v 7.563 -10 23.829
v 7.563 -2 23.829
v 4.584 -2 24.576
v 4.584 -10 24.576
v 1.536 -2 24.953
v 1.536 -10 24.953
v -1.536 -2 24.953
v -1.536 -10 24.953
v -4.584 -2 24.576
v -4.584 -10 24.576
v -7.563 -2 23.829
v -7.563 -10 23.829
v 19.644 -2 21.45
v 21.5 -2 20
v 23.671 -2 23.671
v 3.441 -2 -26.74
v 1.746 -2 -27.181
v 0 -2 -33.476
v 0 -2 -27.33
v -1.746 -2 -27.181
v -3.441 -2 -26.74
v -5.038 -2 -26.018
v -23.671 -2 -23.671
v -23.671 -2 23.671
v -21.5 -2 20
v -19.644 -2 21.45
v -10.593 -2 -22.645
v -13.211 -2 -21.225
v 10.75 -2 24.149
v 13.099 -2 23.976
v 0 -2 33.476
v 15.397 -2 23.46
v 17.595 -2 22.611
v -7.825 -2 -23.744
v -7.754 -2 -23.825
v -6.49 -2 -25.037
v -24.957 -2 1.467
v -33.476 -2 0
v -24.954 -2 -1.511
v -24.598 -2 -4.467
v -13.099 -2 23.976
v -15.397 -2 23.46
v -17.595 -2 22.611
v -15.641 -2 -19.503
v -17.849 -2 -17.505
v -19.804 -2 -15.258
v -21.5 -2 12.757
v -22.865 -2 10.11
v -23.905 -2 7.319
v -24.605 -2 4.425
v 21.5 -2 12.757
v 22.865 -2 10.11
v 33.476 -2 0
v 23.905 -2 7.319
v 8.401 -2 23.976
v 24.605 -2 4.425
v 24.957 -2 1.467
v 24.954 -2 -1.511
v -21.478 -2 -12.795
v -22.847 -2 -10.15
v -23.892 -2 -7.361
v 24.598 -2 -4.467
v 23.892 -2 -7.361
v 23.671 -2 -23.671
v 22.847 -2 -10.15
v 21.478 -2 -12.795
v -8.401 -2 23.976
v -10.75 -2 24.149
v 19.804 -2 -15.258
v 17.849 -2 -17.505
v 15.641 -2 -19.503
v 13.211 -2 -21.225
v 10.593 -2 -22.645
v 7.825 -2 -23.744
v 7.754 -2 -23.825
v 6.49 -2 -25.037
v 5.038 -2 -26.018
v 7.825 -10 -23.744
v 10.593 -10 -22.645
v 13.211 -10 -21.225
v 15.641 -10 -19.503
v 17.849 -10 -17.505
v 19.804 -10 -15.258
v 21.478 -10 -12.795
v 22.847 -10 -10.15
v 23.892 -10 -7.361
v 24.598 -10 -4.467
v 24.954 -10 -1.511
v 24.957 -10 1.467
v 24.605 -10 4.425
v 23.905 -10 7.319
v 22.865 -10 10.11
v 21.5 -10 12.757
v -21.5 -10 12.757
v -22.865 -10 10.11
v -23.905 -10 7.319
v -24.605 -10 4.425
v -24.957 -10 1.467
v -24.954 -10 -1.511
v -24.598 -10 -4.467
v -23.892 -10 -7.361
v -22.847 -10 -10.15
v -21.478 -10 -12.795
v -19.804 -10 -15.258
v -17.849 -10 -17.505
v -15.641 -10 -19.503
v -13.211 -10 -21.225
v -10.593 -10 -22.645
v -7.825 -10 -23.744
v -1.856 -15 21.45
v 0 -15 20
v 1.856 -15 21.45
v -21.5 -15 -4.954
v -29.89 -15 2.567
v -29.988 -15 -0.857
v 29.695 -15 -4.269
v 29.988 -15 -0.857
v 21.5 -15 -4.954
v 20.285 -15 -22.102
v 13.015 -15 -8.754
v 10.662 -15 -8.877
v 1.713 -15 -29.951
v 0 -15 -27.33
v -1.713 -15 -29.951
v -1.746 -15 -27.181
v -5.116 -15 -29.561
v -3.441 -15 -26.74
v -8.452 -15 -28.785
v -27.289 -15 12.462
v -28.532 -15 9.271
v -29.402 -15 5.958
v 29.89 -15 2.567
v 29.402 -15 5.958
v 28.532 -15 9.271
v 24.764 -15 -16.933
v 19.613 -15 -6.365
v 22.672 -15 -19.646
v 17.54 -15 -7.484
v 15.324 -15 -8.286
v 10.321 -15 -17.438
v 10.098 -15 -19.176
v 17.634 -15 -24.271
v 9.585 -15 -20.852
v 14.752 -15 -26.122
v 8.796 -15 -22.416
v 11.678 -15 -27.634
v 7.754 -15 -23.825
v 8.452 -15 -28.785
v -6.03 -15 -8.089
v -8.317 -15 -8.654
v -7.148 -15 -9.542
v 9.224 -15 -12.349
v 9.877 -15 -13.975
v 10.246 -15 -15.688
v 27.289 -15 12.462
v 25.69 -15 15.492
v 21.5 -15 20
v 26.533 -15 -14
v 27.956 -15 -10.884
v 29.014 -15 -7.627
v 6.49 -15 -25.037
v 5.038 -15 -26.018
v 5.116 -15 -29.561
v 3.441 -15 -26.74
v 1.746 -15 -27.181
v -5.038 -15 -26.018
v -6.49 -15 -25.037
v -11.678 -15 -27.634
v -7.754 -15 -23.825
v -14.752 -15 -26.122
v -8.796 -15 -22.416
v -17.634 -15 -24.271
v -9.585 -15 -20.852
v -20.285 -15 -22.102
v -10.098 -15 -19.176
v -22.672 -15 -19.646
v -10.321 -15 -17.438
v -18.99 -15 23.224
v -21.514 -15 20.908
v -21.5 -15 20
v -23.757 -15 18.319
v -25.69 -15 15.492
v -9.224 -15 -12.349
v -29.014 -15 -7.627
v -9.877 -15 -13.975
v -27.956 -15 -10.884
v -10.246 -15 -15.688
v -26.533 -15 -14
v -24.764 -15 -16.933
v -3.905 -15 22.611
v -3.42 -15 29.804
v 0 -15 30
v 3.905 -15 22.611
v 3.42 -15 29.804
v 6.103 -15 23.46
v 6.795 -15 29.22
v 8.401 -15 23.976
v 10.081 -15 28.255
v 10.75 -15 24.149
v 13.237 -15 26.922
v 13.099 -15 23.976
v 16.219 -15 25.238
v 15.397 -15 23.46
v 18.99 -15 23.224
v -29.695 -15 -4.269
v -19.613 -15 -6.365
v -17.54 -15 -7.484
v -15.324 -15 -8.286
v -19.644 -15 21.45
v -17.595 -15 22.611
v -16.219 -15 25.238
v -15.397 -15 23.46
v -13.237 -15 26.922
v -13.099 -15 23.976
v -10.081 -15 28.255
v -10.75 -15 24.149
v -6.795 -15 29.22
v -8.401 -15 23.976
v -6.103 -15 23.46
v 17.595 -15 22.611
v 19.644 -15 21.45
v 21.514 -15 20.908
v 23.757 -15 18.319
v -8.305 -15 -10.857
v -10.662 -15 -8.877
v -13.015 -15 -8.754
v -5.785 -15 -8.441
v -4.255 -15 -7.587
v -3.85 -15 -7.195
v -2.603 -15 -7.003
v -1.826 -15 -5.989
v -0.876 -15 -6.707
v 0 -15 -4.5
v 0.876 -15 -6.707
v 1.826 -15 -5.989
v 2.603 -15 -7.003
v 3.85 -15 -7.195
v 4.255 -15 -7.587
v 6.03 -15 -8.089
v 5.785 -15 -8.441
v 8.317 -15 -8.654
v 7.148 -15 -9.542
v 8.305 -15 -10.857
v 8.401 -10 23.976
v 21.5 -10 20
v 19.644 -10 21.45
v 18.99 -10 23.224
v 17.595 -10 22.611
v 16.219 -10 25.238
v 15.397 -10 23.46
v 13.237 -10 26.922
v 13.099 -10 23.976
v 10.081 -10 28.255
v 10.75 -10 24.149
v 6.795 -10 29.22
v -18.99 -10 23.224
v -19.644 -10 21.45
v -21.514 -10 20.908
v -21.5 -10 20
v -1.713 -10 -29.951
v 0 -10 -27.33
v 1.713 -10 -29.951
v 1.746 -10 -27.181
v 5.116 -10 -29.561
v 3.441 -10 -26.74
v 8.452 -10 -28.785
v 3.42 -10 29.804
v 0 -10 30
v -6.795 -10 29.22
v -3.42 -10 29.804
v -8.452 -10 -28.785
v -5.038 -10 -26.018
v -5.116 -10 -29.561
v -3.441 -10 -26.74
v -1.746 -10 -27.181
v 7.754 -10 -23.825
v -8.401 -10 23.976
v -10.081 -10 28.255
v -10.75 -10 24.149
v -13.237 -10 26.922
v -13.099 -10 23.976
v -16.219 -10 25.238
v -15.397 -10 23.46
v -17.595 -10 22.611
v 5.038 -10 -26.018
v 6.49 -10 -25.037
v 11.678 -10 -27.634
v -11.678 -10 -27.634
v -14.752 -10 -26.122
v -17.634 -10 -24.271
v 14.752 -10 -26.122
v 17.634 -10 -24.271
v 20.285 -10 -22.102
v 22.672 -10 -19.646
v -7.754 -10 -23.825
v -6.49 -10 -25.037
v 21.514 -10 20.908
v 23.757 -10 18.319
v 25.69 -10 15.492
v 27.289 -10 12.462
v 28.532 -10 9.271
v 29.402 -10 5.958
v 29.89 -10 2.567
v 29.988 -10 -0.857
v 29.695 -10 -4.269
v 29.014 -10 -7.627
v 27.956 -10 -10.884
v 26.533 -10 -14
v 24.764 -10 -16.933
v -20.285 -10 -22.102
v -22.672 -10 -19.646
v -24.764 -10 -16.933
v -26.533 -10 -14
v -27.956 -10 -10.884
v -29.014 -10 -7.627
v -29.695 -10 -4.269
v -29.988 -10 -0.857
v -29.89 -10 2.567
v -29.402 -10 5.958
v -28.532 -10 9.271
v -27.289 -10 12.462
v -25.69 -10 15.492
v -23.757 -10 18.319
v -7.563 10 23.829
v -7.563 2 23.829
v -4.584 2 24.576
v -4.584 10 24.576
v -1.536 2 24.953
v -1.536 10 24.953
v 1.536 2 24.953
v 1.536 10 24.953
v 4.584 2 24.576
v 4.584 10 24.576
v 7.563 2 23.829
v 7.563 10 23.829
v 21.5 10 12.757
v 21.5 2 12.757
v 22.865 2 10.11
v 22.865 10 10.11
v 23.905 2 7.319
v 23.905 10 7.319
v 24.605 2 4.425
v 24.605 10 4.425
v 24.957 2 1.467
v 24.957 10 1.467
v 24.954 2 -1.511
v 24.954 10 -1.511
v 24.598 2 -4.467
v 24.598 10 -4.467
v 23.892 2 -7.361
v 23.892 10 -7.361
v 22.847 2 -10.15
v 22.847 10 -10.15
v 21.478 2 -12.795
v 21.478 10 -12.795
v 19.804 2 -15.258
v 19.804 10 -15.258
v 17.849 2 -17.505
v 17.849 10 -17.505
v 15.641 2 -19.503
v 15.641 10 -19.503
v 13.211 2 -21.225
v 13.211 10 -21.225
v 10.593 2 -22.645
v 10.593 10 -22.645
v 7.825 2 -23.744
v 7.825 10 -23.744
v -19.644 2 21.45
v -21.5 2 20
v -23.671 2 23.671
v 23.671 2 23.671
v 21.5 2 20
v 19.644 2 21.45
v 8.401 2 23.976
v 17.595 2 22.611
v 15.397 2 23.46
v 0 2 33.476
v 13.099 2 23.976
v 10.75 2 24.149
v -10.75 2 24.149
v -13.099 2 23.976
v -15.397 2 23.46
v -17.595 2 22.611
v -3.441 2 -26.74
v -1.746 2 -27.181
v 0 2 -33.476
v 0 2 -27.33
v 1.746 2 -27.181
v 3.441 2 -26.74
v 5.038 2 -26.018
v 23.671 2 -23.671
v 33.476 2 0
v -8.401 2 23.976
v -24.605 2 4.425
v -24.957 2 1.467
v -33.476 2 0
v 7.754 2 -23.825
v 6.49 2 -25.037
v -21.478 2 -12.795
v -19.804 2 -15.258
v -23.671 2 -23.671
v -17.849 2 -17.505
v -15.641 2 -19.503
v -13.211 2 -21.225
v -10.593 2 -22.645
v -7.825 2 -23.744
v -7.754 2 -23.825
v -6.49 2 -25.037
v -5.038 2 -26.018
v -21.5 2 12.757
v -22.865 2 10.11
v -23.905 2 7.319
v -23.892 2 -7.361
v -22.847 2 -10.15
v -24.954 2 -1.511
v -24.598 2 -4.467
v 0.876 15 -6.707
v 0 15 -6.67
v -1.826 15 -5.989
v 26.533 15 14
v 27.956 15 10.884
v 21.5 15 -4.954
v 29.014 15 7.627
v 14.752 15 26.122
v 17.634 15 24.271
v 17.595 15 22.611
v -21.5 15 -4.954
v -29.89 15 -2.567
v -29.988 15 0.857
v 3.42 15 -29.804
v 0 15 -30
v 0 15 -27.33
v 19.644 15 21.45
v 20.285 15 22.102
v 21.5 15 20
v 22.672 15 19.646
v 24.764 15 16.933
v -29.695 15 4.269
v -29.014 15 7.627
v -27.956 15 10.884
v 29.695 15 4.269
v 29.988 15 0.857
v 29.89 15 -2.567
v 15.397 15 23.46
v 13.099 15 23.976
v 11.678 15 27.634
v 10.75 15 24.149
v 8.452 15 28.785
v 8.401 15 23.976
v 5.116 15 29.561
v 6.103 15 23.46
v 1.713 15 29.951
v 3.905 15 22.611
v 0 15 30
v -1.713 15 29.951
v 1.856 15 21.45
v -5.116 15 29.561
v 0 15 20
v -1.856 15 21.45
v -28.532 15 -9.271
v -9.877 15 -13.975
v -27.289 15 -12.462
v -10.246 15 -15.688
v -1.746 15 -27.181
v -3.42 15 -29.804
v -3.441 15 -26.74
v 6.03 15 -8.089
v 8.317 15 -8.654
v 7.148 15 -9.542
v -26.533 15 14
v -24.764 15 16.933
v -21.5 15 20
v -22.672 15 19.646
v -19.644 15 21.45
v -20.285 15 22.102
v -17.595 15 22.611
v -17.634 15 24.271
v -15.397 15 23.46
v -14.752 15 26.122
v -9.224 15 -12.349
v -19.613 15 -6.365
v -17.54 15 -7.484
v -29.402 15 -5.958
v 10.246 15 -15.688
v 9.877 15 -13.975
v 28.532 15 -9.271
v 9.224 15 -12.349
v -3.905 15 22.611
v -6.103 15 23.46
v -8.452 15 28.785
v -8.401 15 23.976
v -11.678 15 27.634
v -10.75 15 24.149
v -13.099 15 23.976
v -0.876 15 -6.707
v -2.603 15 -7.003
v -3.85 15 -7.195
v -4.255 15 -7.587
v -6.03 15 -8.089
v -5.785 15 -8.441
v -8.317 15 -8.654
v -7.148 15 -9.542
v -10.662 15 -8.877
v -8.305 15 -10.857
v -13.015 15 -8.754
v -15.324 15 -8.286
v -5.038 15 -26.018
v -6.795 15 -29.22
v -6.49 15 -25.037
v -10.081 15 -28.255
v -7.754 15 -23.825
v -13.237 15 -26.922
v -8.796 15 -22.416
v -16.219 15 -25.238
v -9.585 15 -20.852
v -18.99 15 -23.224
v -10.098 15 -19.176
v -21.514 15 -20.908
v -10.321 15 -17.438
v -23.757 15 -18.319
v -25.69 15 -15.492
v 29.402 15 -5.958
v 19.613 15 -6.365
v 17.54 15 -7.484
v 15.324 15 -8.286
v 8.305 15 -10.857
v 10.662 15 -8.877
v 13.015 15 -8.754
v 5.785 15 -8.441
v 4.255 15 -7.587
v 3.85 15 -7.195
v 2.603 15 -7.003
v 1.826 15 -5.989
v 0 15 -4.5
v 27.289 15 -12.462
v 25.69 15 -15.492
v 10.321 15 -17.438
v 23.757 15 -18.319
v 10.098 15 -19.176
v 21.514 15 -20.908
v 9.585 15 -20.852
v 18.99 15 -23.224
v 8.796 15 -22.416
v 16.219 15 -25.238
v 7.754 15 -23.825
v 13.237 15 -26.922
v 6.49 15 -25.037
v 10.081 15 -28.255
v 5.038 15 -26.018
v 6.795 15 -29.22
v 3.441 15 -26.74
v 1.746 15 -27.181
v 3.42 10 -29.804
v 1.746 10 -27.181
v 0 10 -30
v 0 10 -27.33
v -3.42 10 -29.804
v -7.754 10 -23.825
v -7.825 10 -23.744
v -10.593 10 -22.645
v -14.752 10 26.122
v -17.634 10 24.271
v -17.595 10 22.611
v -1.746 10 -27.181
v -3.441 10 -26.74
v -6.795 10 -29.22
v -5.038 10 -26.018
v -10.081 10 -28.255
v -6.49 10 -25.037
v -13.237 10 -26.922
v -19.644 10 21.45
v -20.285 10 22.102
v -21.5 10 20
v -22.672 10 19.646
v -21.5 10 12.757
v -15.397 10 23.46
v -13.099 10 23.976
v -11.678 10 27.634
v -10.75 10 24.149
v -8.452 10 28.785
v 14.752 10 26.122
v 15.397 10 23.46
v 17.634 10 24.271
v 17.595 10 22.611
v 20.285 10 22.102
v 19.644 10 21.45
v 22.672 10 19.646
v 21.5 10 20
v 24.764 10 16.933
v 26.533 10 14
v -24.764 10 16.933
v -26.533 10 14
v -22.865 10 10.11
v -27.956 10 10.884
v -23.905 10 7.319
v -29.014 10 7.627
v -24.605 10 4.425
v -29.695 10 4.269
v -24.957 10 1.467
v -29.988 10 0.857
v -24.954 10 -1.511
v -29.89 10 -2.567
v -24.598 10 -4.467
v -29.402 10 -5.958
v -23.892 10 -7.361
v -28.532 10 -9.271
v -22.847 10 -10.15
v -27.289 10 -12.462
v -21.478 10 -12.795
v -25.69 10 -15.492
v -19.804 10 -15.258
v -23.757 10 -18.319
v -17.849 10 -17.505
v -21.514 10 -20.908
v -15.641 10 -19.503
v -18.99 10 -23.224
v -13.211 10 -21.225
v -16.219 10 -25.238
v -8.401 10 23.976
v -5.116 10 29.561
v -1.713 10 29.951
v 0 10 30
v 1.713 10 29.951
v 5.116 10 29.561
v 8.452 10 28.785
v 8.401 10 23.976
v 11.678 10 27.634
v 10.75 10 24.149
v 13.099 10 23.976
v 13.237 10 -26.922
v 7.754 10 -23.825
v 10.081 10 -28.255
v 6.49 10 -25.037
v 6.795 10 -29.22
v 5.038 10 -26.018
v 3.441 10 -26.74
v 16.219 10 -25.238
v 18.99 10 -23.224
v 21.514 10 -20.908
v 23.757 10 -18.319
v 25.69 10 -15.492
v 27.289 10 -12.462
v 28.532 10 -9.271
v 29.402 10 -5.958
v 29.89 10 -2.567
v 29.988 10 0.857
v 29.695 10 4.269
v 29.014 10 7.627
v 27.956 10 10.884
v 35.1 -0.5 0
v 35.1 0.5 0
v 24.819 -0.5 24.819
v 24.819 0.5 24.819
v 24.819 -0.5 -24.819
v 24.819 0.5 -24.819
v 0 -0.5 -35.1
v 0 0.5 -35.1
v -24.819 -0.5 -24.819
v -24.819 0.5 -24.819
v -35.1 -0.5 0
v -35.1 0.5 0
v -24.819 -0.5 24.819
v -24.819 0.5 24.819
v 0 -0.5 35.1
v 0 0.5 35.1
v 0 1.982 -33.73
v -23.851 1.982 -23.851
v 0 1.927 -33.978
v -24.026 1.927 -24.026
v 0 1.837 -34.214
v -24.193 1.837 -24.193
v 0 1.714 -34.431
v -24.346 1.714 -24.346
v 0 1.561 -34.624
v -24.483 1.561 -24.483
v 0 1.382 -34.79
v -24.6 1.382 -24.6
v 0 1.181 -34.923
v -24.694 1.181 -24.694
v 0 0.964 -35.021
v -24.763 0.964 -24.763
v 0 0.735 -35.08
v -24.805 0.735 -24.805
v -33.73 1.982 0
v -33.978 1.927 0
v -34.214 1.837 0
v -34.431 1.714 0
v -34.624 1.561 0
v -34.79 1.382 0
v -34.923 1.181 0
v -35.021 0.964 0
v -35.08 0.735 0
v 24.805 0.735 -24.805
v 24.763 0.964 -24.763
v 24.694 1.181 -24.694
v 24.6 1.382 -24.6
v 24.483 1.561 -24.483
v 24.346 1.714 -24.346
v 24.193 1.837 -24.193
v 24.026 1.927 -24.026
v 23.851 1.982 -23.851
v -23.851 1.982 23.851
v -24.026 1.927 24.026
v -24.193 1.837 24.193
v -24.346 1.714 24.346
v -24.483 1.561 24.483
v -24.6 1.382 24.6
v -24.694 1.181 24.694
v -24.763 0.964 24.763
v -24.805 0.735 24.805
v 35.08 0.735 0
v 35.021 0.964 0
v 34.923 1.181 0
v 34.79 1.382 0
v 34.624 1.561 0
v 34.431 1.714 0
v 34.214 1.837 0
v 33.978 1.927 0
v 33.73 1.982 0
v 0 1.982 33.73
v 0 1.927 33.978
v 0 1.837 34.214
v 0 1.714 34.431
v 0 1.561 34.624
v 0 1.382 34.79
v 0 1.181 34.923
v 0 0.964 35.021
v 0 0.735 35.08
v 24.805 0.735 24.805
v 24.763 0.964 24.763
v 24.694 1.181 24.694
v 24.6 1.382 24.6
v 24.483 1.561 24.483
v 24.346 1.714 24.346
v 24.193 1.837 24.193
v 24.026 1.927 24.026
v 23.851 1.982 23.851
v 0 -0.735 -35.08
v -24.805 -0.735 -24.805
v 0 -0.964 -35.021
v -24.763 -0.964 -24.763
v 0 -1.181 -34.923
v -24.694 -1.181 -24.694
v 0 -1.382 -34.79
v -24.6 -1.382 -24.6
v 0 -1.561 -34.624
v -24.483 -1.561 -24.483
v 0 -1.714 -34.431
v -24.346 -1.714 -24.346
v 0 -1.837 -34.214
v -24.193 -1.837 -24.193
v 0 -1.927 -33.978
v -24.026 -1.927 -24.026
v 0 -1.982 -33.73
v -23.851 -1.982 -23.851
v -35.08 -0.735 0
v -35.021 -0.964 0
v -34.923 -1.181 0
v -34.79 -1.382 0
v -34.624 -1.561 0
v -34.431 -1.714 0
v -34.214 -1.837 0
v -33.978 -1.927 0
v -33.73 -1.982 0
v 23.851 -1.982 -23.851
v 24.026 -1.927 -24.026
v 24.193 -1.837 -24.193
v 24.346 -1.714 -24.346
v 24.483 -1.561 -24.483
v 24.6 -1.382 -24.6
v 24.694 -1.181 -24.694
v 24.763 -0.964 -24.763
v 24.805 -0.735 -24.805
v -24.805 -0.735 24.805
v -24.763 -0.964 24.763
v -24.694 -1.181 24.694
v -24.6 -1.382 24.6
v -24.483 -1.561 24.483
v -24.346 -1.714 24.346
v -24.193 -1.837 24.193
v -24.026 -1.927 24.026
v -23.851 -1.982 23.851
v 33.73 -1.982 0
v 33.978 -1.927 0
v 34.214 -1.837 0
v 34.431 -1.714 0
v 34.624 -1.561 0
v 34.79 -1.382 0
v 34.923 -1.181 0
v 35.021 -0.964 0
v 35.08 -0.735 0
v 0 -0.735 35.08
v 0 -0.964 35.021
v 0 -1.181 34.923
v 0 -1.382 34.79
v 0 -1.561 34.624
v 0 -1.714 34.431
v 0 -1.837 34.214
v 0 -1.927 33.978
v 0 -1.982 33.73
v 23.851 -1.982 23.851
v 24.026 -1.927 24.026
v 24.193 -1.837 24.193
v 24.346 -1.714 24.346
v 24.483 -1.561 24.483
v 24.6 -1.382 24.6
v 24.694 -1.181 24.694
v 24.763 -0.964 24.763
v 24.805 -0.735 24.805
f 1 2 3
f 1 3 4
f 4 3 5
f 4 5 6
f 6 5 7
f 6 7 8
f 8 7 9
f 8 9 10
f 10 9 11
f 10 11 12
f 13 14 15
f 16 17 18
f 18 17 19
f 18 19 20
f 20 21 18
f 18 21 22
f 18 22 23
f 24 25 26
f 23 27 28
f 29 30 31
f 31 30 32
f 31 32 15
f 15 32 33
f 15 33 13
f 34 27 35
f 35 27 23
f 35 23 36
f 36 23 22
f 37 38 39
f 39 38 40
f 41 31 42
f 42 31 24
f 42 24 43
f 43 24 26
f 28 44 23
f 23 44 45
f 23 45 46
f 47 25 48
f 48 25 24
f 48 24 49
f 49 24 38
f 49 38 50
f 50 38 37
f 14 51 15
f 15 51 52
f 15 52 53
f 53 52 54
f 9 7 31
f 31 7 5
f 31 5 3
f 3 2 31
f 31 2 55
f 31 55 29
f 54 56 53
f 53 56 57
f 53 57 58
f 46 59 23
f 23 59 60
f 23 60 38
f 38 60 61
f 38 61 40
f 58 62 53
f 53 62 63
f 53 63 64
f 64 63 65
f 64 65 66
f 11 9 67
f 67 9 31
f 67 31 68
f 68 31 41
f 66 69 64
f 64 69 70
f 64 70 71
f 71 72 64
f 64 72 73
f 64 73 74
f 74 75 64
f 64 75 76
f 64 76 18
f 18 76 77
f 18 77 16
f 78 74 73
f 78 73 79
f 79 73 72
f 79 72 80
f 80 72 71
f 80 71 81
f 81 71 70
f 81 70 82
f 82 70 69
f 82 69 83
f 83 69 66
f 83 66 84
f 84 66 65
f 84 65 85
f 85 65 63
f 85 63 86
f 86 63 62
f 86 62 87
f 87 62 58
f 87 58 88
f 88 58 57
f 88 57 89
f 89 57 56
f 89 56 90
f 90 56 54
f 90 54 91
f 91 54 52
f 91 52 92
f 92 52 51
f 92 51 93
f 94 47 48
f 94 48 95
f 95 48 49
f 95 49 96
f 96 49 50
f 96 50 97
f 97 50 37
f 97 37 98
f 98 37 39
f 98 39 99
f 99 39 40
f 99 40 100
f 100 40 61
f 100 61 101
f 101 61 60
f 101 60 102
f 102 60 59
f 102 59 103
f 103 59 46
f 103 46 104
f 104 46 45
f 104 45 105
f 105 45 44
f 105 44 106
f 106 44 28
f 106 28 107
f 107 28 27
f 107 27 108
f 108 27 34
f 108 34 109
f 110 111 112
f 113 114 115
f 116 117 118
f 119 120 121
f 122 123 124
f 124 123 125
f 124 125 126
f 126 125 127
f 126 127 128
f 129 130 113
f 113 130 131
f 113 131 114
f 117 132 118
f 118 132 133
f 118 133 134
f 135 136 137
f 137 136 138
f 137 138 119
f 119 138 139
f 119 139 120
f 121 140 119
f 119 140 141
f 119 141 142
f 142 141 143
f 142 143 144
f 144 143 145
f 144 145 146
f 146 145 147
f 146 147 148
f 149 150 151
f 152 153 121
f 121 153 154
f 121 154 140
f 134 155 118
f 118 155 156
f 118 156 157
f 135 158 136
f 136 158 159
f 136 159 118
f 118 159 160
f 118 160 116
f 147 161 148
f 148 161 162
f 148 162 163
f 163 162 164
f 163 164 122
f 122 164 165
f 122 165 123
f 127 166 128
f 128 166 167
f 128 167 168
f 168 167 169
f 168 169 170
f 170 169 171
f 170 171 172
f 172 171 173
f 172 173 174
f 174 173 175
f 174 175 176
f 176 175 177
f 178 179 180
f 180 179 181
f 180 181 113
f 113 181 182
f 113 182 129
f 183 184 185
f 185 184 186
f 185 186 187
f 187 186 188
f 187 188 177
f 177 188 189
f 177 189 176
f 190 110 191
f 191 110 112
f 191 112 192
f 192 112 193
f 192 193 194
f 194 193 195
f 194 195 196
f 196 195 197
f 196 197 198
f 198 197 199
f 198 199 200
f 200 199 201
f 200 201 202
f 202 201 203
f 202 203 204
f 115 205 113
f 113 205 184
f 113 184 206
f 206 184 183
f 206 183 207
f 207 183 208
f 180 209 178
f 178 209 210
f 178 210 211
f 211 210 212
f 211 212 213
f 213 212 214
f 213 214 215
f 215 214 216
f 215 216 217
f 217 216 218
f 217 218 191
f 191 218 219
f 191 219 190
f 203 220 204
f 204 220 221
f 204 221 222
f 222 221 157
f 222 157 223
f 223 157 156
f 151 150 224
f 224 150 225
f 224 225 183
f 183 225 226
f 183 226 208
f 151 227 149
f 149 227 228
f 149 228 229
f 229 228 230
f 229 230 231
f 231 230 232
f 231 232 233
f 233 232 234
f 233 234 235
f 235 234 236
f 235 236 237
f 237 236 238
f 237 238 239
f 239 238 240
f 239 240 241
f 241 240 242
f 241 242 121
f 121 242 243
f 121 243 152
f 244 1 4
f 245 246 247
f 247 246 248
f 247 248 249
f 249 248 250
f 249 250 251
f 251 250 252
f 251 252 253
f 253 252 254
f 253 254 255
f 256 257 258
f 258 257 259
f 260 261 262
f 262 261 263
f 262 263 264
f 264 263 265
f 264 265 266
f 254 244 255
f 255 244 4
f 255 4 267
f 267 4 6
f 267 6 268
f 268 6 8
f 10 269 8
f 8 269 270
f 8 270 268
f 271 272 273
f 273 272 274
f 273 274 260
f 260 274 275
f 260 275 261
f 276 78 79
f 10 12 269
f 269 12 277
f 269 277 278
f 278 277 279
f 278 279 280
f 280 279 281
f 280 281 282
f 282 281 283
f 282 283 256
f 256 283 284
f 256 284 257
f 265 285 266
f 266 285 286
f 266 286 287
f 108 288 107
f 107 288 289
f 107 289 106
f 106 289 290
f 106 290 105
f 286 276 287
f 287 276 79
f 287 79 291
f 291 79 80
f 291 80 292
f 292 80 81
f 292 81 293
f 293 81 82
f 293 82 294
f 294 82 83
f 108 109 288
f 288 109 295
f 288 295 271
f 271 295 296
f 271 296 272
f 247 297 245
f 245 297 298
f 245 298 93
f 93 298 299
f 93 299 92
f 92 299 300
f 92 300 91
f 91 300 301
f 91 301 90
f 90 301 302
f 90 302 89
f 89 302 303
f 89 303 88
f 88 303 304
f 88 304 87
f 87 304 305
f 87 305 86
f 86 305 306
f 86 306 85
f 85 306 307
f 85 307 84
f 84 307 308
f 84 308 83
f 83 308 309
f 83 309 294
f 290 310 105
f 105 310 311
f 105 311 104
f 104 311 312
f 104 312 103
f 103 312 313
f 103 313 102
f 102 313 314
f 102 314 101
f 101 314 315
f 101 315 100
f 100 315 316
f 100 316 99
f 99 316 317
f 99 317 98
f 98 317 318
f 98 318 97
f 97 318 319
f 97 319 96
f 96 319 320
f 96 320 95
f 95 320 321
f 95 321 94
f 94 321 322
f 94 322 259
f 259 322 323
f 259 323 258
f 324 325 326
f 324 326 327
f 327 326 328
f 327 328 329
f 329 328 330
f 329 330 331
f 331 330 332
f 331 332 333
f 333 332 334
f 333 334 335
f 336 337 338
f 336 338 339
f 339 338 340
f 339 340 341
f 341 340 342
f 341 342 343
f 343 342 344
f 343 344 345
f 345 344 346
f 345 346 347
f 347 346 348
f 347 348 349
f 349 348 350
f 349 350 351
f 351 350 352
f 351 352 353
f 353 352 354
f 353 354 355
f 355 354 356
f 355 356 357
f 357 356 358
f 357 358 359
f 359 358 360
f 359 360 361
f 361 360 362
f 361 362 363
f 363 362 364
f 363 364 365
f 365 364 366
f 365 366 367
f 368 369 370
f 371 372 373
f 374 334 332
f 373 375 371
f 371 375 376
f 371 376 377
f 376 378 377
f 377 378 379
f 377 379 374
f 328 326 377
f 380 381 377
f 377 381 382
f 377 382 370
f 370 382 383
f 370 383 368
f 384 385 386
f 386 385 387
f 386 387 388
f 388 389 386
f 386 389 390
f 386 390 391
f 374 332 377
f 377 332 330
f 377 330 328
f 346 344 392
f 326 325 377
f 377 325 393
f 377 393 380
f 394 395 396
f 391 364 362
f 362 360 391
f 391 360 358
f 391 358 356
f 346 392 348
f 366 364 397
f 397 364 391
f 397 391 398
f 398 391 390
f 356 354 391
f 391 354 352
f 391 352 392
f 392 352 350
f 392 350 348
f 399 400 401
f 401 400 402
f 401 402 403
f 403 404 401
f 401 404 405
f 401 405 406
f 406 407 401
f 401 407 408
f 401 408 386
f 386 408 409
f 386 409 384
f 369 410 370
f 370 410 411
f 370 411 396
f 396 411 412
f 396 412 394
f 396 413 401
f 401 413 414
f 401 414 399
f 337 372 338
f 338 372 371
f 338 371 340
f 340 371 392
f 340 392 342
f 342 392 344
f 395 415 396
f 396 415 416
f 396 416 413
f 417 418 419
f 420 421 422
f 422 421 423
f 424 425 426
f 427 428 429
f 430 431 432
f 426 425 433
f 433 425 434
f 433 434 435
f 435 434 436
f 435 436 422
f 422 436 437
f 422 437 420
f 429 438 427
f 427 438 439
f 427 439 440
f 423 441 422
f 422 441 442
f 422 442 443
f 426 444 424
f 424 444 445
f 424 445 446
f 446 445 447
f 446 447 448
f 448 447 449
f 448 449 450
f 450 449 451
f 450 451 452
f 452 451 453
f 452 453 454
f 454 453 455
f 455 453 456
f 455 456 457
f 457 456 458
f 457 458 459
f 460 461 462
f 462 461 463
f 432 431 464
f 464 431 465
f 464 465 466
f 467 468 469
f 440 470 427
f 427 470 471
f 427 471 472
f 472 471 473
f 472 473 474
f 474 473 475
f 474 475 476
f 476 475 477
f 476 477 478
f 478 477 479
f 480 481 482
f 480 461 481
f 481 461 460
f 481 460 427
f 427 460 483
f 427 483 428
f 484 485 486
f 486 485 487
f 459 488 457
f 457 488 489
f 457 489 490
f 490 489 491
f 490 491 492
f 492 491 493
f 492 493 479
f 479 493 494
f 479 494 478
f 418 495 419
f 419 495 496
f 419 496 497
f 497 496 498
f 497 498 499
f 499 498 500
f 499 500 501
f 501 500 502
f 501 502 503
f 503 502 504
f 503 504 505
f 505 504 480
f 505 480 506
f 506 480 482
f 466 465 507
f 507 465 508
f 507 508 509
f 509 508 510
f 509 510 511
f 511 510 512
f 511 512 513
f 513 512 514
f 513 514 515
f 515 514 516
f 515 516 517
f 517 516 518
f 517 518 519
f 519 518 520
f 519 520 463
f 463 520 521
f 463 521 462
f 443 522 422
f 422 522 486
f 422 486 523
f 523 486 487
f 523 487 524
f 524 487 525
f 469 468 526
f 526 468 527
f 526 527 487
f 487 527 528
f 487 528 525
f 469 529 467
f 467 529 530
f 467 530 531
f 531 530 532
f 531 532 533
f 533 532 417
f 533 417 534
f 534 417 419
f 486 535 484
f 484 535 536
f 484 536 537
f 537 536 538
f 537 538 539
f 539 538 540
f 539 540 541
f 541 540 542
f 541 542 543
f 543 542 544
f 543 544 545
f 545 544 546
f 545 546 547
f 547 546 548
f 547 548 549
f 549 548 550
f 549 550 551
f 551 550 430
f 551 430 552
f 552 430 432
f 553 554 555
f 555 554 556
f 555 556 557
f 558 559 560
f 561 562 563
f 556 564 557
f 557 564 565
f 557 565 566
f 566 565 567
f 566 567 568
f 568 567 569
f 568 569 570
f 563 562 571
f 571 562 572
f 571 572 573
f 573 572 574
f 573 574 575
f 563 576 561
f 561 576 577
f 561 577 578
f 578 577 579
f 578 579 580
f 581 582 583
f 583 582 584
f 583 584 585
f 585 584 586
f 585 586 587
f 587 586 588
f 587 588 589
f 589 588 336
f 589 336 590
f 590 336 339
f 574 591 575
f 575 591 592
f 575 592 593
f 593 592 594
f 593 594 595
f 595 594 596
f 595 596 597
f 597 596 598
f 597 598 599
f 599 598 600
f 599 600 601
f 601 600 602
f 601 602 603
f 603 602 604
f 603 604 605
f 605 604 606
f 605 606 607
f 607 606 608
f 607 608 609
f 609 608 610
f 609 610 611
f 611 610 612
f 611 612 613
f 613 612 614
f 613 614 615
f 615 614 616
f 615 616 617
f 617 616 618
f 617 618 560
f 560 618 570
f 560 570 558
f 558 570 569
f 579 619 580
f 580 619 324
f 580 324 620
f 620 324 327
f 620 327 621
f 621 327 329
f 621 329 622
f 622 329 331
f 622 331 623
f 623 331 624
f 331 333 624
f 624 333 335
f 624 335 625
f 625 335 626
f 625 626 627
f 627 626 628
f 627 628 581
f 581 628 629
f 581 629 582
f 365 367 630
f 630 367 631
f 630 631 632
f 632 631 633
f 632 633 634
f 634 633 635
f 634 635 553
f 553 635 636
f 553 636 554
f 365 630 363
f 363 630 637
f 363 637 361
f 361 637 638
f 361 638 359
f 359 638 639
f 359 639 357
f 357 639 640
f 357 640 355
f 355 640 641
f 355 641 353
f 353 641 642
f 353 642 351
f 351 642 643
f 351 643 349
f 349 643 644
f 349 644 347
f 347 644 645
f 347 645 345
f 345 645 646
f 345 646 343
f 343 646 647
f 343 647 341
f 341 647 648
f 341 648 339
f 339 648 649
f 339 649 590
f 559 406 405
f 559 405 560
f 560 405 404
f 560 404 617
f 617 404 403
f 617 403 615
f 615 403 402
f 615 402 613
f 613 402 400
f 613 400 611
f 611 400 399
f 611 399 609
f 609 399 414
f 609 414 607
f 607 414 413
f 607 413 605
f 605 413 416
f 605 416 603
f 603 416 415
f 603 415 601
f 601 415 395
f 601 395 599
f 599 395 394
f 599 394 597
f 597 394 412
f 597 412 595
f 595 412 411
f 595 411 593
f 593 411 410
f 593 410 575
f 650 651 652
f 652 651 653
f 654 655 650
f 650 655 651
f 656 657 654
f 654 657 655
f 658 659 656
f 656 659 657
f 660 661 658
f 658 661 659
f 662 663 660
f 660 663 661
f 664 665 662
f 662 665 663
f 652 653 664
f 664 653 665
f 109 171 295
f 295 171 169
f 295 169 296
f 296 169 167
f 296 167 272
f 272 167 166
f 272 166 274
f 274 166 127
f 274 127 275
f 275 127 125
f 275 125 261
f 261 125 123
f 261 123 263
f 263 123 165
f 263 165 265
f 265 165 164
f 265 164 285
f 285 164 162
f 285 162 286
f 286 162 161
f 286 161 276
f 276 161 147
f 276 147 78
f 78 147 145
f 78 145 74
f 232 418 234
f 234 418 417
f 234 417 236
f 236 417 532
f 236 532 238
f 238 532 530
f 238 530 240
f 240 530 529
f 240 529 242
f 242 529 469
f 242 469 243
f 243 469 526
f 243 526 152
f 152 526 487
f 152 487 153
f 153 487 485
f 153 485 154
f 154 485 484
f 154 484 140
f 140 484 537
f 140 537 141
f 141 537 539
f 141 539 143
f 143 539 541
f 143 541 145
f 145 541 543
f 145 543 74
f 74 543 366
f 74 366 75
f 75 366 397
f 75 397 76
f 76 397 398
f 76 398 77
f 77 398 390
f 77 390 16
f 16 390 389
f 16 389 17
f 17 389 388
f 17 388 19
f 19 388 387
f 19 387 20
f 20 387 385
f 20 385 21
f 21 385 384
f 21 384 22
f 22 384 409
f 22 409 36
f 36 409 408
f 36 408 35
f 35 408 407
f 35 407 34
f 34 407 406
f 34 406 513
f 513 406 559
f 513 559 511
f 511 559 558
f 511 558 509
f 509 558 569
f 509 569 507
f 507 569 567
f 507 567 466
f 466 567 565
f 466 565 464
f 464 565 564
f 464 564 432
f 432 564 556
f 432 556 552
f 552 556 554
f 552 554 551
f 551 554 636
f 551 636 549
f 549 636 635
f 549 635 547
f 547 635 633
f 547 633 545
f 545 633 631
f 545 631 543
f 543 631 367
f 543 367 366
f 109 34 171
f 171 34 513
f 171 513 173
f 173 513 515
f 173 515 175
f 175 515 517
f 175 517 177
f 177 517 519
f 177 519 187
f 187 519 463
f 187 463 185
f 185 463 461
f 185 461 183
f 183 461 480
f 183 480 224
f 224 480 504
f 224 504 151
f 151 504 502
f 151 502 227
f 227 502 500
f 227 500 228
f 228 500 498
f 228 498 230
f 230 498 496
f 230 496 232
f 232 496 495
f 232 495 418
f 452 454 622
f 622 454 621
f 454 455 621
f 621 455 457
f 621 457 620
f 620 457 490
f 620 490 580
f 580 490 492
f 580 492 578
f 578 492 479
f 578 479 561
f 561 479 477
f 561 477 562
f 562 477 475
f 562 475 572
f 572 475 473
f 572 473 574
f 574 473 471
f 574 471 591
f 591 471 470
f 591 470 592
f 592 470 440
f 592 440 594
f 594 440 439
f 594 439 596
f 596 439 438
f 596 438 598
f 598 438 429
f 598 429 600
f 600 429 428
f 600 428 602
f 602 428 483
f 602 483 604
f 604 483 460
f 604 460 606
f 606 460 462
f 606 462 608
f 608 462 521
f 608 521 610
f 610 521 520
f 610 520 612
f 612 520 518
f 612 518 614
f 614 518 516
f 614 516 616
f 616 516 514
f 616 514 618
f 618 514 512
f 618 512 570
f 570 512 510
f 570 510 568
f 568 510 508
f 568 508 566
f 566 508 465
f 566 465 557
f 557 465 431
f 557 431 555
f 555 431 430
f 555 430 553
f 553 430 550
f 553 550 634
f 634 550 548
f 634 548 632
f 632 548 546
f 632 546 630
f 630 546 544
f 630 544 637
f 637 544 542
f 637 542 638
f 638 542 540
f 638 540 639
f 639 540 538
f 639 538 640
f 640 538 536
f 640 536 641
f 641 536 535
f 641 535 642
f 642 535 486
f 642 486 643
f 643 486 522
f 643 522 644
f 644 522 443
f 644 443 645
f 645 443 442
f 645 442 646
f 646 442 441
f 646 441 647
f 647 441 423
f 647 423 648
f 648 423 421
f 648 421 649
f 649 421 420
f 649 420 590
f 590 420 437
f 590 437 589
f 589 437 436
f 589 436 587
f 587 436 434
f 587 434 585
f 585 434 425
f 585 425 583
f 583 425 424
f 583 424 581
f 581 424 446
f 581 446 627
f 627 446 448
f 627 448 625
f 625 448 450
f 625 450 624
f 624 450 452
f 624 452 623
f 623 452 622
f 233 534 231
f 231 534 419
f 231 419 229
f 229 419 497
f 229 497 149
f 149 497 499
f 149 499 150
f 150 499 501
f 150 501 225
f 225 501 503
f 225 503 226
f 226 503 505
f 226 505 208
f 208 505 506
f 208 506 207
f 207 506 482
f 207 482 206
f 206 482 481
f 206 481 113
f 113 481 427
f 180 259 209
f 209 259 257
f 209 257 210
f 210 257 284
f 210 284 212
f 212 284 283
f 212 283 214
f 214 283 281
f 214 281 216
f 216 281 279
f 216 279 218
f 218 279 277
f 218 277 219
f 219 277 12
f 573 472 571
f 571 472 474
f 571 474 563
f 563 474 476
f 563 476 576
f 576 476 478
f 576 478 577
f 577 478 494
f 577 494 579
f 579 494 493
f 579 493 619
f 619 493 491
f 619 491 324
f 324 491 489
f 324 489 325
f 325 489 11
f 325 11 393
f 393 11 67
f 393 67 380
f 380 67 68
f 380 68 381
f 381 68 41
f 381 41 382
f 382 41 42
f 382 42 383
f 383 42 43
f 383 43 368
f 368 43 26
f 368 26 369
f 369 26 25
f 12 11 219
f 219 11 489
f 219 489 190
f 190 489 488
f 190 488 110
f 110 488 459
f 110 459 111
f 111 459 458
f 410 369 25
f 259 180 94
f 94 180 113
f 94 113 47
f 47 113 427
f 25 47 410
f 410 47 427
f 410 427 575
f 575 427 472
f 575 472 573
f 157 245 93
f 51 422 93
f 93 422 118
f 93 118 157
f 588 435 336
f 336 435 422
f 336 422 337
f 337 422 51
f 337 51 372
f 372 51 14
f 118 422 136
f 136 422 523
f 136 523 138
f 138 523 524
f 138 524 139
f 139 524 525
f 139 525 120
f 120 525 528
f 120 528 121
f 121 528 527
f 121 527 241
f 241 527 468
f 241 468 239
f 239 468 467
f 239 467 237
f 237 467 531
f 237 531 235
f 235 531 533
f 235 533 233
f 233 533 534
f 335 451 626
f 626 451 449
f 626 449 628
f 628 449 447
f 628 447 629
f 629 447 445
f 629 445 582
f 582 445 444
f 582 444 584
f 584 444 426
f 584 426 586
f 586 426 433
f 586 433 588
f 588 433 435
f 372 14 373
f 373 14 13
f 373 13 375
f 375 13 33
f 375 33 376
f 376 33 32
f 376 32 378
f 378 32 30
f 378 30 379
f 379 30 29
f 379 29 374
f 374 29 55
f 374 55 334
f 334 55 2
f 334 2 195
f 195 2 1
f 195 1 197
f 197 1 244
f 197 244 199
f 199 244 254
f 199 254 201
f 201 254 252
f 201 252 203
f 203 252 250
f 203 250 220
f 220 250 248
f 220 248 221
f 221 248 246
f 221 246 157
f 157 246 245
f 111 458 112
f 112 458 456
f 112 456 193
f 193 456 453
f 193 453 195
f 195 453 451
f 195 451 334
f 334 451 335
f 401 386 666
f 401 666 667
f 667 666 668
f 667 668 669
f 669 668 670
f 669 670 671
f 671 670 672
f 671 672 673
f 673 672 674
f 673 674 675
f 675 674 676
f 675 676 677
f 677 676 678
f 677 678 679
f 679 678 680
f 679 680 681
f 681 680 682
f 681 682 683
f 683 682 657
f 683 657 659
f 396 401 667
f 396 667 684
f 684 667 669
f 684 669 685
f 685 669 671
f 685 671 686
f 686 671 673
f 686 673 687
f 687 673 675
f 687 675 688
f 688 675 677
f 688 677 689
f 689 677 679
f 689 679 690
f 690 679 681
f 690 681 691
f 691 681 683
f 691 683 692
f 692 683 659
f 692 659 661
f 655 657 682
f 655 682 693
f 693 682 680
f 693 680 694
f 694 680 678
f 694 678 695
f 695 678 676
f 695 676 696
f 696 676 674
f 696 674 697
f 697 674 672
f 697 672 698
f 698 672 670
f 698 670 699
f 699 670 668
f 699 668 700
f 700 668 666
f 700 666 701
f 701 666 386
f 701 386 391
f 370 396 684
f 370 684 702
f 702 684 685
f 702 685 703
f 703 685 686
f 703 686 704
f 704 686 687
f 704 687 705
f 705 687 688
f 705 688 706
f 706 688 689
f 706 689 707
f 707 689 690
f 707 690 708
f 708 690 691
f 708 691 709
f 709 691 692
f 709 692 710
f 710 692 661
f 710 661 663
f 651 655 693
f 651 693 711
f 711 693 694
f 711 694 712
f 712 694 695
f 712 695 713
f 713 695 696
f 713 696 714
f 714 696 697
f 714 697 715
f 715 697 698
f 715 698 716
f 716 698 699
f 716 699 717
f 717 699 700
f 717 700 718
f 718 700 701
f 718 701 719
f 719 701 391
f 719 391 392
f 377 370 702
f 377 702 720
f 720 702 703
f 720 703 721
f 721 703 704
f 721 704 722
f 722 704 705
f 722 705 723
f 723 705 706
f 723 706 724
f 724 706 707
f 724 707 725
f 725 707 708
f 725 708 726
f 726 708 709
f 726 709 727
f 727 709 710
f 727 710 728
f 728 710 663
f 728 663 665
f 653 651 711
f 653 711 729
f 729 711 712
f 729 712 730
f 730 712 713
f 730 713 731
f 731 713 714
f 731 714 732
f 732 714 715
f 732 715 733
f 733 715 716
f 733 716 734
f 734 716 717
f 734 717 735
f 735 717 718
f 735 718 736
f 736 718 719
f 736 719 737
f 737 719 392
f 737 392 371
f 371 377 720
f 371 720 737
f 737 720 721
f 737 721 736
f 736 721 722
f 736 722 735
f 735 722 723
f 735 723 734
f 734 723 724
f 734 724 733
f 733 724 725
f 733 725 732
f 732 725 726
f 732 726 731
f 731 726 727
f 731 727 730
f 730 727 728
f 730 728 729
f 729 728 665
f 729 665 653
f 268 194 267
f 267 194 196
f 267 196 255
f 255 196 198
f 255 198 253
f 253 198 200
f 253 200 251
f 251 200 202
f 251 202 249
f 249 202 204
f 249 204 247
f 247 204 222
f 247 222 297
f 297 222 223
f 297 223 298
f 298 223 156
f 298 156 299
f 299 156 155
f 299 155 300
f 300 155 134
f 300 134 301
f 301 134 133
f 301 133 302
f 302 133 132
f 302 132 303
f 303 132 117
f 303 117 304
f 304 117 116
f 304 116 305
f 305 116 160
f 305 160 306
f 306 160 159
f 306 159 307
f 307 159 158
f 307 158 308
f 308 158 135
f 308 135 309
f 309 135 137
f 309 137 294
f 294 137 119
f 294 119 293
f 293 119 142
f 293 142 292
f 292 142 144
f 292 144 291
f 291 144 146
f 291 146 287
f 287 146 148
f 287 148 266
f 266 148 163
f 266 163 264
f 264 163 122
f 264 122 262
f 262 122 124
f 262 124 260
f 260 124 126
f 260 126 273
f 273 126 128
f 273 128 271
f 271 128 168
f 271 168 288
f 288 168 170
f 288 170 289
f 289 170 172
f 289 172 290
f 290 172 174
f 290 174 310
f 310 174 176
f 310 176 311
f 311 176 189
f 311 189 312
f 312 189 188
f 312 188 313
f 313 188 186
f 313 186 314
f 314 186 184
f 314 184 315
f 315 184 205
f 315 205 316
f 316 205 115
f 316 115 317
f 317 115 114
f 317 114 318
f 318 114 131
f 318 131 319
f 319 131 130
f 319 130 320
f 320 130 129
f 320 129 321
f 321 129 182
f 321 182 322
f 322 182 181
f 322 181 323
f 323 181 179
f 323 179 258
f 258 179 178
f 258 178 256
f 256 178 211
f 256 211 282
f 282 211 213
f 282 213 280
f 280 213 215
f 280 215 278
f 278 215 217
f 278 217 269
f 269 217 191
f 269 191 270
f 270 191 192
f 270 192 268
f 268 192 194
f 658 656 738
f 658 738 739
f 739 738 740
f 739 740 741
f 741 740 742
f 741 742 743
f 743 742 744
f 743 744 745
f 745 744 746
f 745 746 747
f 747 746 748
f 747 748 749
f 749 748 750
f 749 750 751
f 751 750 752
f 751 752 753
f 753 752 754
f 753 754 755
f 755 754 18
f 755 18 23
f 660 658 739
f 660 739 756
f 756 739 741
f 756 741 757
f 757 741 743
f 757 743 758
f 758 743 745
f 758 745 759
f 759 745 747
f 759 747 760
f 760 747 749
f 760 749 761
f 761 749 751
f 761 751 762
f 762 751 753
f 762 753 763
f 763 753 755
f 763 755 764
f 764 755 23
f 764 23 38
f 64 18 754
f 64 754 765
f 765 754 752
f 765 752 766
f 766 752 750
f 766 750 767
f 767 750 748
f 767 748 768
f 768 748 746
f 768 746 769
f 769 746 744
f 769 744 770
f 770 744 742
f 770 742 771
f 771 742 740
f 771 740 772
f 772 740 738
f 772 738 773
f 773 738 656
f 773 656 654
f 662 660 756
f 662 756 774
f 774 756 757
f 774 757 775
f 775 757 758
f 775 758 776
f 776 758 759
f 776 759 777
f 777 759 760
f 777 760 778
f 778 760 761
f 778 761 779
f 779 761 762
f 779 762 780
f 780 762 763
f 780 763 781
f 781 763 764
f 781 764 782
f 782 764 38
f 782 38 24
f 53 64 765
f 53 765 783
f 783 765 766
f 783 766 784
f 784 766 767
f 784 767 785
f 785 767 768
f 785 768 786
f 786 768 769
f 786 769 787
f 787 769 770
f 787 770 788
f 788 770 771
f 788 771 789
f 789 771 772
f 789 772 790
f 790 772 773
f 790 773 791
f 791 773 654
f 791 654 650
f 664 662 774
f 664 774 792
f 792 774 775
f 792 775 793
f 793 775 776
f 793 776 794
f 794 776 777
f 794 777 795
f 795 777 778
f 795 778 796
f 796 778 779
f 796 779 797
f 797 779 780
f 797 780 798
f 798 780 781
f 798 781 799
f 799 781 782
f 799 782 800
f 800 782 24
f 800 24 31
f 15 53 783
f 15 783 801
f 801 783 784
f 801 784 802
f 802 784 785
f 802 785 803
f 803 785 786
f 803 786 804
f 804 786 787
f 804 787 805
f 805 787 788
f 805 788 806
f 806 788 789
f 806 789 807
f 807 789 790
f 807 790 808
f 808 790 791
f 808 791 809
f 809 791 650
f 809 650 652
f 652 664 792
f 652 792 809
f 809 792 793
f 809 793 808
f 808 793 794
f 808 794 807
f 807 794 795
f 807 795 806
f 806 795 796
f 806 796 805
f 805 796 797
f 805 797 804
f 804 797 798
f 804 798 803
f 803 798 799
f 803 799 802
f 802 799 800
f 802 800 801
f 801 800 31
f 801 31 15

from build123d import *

# Parameters (mm, degrees)
BOSS_EXTRUDE1_DEPTH  = 2
SKETCH12_R           = 25
BOSS_EXTRUDE2_DEPTH  = 8
CUT_EXTRUDE6_START   = -36
SKETCH17_R           = 10.33
CUT_EXTRUDE6_DEPTH   = 45.856111051
SKETCH25_R           = 30
BOSS_EXTRUDE3_DEPTH  = 5
CUT_EXTRUDE9_START   = -5
SKETCH26_R           = 10.33
CUT_EXTRUDE9_DEPTH   = 5
CUT_EXTRUDE10_DEPTH  = 45
FILLET3_R            = 1.5
MIRROR9_COPY_1_DEPTH = 45
FILLET3_OF_MIRROR9_R = 1.5
CUT_EXTRUDE11_START  = -5
SKETCH29_R           = 10.33
CUT_EXTRUDE11_DEPTH  = 5


with BuildPart() as part:
    # Sketch3 → Boss-Extrude1 (new body)
    with BuildSketch(Plane(origin=(0, 0, 0), x_dir=(1, 0, 0), z_dir=(0, 1, 0))):
        Polygon((35.1, 0), (24.81944802, 24.81944802), (0, 35.1), (-24.81944802, 24.81944802), (-35.1, 0), (-24.81944802, -24.81944802), (0, -35.1), (24.81944802, -24.81944802), align=None)
    boss_extrude1 = extrude(amount=BOSS_EXTRUDE1_DEPTH)

    # Sketch12 → Boss-Extrude2 (add)
    with BuildSketch(Plane(origin=(0, 2, 0), x_dir=(1, 0, 0), z_dir=(0, 1, 0))):
        Circle(SKETCH12_R)
    boss_extrude2 = extrude(amount=BOSS_EXTRUDE2_DEPTH)

    # Sketch17 → Cut-Extrude6 (cut)
    with BuildSketch(Plane(origin=(0, 10, 0), x_dir=(1, 0, 0), z_dir=(0, 1, 0)).offset(CUT_EXTRUDE6_START)):
        with Locations((0, 17)):
            Circle(SKETCH17_R)
    cut_extrude6 = extrude(amount=CUT_EXTRUDE6_DEPTH, mode=Mode.SUBTRACT)

    # Sketch25 → Boss-Extrude3 (add)
    with BuildSketch(Plane(origin=(0, 10, 0), x_dir=(1, 0, 0), z_dir=(0, 1, 0))):
        Circle(SKETCH25_R)
    boss_extrude3 = extrude(amount=BOSS_EXTRUDE3_DEPTH)

    # Sketch26 → Cut-Extrude9 (cut)
    with BuildSketch(Plane(origin=(0, 15, 0), x_dir=(1, 0, 0), z_dir=(0, 1, 0)).offset(CUT_EXTRUDE9_START)):
        with Locations((0, 17)):
            Circle(SKETCH26_R)
    extrude(amount=CUT_EXTRUDE9_DEPTH, mode=Mode.SUBTRACT)

    # Sketch27 → Cut-Extrude10 (cut)
    with BuildSketch(Plane(origin=(0, 15, 0), x_dir=(1, 0, 0), z_dir=(0, 1, 0))):
        with BuildLine():
            Line((0, -20), (0, 4.5))
            ThreePointArc((0, 4.5), (-10.662403413, 8.877487957), (-21.5, 4.953746429))
            Line((-21.5, 4.953746429), (-21.5, -20))
            ThreePointArc((-21.5, -20), (-10.75, -24.149367106), (0, -20))
        make_face()
    cut_extrude10 = extrude(amount=-CUT_EXTRUDE10_DEPTH, mode=Mode.SUBTRACT)

    # Mirror8: Cut-Extrude10 across plane
    add(cut_extrude10.mirror(Plane.ZY), mode=Mode.SUBTRACT)

    # Fillet3
    fillet3_edges = [part.edges().sort_by_distance(p)[0] for p in [
        (12.40972401, 2, 29.95972401),
        (29.95972401, 2, 12.40972401),
        (-12.40972401, 2, 29.95972401),
        (-29.95972401, 2, 12.40972401),
        (-29.95972401, 2, -12.40972401),
        (29.95972401, 2, -12.40972401),
        (-12.40972401, 2, -29.95972401),
        (12.40972401, 2, -29.95972401),
    ]]
    fillet(fillet3_edges, radius=FILLET3_R)

    # Mirror9: Boss-Extrude1, Boss-Extrude2, Cut-Extrude6, Boss-Extrude3, Cut-Extrude10 across plane
    add(boss_extrude1.mirror(Plane.ZX))
    add(boss_extrude2.mirror(Plane.ZX))
    add(cut_extrude6.mirror(Plane.ZX), mode=Mode.SUBTRACT)
    add(boss_extrude3.mirror(Plane.ZX))
    add(cut_extrude10.mirror(Plane.ZX), mode=Mode.SUBTRACT)

    # Mirror9 copy 1 sketch → Mirror9 copy 1 (cut)
    with BuildSketch(Plane(origin=(0, -15, 0), x_dir=(-1, 0, 0), z_dir=(0, -1, 0))):
        with BuildLine():
            Line((0, -20), (0, 4.5))
            ThreePointArc((0, 4.5), (-10.662403413, 8.877487957), (-21.5, 4.953746429))
            Line((-21.5, 4.953746429), (-21.5, -20))
            ThreePointArc((-21.5, -20), (-10.75, -24.149367106), (0, -20))
        make_face()
    extrude(amount=-MIRROR9_COPY_1_DEPTH, mode=Mode.SUBTRACT)

    # Fillet3 of Mirror9
    fillet3_of_mirror9_edges = [part.edges().sort_by_distance(p)[0] for p in [
        (12.40972401, -2, 29.95972401),
        (29.95972401, -2, 12.40972401),
        (-12.40972401, -2, 29.95972401),
        (-29.95972401, -2, 12.40972401),
        (-29.95972401, -2, -12.40972401),
        (29.95972401, -2, -12.40972401),
        (-12.40972401, -2, -29.95972401),
        (12.40972401, -2, -29.95972401),
    ]]
    fillet(fillet3_of_mirror9_edges, radius=FILLET3_OF_MIRROR9_R)

    # Sketch29 → Cut-Extrude11 (cut)
    with BuildSketch(Plane.XZ.offset(15).offset(CUT_EXTRUDE11_START)):
        with Locations((0, -17)):
            Circle(SKETCH29_R)
    extrude(amount=CUT_EXTRUDE11_DEPTH, mode=Mode.SUBTRACT)


solid = part.part
